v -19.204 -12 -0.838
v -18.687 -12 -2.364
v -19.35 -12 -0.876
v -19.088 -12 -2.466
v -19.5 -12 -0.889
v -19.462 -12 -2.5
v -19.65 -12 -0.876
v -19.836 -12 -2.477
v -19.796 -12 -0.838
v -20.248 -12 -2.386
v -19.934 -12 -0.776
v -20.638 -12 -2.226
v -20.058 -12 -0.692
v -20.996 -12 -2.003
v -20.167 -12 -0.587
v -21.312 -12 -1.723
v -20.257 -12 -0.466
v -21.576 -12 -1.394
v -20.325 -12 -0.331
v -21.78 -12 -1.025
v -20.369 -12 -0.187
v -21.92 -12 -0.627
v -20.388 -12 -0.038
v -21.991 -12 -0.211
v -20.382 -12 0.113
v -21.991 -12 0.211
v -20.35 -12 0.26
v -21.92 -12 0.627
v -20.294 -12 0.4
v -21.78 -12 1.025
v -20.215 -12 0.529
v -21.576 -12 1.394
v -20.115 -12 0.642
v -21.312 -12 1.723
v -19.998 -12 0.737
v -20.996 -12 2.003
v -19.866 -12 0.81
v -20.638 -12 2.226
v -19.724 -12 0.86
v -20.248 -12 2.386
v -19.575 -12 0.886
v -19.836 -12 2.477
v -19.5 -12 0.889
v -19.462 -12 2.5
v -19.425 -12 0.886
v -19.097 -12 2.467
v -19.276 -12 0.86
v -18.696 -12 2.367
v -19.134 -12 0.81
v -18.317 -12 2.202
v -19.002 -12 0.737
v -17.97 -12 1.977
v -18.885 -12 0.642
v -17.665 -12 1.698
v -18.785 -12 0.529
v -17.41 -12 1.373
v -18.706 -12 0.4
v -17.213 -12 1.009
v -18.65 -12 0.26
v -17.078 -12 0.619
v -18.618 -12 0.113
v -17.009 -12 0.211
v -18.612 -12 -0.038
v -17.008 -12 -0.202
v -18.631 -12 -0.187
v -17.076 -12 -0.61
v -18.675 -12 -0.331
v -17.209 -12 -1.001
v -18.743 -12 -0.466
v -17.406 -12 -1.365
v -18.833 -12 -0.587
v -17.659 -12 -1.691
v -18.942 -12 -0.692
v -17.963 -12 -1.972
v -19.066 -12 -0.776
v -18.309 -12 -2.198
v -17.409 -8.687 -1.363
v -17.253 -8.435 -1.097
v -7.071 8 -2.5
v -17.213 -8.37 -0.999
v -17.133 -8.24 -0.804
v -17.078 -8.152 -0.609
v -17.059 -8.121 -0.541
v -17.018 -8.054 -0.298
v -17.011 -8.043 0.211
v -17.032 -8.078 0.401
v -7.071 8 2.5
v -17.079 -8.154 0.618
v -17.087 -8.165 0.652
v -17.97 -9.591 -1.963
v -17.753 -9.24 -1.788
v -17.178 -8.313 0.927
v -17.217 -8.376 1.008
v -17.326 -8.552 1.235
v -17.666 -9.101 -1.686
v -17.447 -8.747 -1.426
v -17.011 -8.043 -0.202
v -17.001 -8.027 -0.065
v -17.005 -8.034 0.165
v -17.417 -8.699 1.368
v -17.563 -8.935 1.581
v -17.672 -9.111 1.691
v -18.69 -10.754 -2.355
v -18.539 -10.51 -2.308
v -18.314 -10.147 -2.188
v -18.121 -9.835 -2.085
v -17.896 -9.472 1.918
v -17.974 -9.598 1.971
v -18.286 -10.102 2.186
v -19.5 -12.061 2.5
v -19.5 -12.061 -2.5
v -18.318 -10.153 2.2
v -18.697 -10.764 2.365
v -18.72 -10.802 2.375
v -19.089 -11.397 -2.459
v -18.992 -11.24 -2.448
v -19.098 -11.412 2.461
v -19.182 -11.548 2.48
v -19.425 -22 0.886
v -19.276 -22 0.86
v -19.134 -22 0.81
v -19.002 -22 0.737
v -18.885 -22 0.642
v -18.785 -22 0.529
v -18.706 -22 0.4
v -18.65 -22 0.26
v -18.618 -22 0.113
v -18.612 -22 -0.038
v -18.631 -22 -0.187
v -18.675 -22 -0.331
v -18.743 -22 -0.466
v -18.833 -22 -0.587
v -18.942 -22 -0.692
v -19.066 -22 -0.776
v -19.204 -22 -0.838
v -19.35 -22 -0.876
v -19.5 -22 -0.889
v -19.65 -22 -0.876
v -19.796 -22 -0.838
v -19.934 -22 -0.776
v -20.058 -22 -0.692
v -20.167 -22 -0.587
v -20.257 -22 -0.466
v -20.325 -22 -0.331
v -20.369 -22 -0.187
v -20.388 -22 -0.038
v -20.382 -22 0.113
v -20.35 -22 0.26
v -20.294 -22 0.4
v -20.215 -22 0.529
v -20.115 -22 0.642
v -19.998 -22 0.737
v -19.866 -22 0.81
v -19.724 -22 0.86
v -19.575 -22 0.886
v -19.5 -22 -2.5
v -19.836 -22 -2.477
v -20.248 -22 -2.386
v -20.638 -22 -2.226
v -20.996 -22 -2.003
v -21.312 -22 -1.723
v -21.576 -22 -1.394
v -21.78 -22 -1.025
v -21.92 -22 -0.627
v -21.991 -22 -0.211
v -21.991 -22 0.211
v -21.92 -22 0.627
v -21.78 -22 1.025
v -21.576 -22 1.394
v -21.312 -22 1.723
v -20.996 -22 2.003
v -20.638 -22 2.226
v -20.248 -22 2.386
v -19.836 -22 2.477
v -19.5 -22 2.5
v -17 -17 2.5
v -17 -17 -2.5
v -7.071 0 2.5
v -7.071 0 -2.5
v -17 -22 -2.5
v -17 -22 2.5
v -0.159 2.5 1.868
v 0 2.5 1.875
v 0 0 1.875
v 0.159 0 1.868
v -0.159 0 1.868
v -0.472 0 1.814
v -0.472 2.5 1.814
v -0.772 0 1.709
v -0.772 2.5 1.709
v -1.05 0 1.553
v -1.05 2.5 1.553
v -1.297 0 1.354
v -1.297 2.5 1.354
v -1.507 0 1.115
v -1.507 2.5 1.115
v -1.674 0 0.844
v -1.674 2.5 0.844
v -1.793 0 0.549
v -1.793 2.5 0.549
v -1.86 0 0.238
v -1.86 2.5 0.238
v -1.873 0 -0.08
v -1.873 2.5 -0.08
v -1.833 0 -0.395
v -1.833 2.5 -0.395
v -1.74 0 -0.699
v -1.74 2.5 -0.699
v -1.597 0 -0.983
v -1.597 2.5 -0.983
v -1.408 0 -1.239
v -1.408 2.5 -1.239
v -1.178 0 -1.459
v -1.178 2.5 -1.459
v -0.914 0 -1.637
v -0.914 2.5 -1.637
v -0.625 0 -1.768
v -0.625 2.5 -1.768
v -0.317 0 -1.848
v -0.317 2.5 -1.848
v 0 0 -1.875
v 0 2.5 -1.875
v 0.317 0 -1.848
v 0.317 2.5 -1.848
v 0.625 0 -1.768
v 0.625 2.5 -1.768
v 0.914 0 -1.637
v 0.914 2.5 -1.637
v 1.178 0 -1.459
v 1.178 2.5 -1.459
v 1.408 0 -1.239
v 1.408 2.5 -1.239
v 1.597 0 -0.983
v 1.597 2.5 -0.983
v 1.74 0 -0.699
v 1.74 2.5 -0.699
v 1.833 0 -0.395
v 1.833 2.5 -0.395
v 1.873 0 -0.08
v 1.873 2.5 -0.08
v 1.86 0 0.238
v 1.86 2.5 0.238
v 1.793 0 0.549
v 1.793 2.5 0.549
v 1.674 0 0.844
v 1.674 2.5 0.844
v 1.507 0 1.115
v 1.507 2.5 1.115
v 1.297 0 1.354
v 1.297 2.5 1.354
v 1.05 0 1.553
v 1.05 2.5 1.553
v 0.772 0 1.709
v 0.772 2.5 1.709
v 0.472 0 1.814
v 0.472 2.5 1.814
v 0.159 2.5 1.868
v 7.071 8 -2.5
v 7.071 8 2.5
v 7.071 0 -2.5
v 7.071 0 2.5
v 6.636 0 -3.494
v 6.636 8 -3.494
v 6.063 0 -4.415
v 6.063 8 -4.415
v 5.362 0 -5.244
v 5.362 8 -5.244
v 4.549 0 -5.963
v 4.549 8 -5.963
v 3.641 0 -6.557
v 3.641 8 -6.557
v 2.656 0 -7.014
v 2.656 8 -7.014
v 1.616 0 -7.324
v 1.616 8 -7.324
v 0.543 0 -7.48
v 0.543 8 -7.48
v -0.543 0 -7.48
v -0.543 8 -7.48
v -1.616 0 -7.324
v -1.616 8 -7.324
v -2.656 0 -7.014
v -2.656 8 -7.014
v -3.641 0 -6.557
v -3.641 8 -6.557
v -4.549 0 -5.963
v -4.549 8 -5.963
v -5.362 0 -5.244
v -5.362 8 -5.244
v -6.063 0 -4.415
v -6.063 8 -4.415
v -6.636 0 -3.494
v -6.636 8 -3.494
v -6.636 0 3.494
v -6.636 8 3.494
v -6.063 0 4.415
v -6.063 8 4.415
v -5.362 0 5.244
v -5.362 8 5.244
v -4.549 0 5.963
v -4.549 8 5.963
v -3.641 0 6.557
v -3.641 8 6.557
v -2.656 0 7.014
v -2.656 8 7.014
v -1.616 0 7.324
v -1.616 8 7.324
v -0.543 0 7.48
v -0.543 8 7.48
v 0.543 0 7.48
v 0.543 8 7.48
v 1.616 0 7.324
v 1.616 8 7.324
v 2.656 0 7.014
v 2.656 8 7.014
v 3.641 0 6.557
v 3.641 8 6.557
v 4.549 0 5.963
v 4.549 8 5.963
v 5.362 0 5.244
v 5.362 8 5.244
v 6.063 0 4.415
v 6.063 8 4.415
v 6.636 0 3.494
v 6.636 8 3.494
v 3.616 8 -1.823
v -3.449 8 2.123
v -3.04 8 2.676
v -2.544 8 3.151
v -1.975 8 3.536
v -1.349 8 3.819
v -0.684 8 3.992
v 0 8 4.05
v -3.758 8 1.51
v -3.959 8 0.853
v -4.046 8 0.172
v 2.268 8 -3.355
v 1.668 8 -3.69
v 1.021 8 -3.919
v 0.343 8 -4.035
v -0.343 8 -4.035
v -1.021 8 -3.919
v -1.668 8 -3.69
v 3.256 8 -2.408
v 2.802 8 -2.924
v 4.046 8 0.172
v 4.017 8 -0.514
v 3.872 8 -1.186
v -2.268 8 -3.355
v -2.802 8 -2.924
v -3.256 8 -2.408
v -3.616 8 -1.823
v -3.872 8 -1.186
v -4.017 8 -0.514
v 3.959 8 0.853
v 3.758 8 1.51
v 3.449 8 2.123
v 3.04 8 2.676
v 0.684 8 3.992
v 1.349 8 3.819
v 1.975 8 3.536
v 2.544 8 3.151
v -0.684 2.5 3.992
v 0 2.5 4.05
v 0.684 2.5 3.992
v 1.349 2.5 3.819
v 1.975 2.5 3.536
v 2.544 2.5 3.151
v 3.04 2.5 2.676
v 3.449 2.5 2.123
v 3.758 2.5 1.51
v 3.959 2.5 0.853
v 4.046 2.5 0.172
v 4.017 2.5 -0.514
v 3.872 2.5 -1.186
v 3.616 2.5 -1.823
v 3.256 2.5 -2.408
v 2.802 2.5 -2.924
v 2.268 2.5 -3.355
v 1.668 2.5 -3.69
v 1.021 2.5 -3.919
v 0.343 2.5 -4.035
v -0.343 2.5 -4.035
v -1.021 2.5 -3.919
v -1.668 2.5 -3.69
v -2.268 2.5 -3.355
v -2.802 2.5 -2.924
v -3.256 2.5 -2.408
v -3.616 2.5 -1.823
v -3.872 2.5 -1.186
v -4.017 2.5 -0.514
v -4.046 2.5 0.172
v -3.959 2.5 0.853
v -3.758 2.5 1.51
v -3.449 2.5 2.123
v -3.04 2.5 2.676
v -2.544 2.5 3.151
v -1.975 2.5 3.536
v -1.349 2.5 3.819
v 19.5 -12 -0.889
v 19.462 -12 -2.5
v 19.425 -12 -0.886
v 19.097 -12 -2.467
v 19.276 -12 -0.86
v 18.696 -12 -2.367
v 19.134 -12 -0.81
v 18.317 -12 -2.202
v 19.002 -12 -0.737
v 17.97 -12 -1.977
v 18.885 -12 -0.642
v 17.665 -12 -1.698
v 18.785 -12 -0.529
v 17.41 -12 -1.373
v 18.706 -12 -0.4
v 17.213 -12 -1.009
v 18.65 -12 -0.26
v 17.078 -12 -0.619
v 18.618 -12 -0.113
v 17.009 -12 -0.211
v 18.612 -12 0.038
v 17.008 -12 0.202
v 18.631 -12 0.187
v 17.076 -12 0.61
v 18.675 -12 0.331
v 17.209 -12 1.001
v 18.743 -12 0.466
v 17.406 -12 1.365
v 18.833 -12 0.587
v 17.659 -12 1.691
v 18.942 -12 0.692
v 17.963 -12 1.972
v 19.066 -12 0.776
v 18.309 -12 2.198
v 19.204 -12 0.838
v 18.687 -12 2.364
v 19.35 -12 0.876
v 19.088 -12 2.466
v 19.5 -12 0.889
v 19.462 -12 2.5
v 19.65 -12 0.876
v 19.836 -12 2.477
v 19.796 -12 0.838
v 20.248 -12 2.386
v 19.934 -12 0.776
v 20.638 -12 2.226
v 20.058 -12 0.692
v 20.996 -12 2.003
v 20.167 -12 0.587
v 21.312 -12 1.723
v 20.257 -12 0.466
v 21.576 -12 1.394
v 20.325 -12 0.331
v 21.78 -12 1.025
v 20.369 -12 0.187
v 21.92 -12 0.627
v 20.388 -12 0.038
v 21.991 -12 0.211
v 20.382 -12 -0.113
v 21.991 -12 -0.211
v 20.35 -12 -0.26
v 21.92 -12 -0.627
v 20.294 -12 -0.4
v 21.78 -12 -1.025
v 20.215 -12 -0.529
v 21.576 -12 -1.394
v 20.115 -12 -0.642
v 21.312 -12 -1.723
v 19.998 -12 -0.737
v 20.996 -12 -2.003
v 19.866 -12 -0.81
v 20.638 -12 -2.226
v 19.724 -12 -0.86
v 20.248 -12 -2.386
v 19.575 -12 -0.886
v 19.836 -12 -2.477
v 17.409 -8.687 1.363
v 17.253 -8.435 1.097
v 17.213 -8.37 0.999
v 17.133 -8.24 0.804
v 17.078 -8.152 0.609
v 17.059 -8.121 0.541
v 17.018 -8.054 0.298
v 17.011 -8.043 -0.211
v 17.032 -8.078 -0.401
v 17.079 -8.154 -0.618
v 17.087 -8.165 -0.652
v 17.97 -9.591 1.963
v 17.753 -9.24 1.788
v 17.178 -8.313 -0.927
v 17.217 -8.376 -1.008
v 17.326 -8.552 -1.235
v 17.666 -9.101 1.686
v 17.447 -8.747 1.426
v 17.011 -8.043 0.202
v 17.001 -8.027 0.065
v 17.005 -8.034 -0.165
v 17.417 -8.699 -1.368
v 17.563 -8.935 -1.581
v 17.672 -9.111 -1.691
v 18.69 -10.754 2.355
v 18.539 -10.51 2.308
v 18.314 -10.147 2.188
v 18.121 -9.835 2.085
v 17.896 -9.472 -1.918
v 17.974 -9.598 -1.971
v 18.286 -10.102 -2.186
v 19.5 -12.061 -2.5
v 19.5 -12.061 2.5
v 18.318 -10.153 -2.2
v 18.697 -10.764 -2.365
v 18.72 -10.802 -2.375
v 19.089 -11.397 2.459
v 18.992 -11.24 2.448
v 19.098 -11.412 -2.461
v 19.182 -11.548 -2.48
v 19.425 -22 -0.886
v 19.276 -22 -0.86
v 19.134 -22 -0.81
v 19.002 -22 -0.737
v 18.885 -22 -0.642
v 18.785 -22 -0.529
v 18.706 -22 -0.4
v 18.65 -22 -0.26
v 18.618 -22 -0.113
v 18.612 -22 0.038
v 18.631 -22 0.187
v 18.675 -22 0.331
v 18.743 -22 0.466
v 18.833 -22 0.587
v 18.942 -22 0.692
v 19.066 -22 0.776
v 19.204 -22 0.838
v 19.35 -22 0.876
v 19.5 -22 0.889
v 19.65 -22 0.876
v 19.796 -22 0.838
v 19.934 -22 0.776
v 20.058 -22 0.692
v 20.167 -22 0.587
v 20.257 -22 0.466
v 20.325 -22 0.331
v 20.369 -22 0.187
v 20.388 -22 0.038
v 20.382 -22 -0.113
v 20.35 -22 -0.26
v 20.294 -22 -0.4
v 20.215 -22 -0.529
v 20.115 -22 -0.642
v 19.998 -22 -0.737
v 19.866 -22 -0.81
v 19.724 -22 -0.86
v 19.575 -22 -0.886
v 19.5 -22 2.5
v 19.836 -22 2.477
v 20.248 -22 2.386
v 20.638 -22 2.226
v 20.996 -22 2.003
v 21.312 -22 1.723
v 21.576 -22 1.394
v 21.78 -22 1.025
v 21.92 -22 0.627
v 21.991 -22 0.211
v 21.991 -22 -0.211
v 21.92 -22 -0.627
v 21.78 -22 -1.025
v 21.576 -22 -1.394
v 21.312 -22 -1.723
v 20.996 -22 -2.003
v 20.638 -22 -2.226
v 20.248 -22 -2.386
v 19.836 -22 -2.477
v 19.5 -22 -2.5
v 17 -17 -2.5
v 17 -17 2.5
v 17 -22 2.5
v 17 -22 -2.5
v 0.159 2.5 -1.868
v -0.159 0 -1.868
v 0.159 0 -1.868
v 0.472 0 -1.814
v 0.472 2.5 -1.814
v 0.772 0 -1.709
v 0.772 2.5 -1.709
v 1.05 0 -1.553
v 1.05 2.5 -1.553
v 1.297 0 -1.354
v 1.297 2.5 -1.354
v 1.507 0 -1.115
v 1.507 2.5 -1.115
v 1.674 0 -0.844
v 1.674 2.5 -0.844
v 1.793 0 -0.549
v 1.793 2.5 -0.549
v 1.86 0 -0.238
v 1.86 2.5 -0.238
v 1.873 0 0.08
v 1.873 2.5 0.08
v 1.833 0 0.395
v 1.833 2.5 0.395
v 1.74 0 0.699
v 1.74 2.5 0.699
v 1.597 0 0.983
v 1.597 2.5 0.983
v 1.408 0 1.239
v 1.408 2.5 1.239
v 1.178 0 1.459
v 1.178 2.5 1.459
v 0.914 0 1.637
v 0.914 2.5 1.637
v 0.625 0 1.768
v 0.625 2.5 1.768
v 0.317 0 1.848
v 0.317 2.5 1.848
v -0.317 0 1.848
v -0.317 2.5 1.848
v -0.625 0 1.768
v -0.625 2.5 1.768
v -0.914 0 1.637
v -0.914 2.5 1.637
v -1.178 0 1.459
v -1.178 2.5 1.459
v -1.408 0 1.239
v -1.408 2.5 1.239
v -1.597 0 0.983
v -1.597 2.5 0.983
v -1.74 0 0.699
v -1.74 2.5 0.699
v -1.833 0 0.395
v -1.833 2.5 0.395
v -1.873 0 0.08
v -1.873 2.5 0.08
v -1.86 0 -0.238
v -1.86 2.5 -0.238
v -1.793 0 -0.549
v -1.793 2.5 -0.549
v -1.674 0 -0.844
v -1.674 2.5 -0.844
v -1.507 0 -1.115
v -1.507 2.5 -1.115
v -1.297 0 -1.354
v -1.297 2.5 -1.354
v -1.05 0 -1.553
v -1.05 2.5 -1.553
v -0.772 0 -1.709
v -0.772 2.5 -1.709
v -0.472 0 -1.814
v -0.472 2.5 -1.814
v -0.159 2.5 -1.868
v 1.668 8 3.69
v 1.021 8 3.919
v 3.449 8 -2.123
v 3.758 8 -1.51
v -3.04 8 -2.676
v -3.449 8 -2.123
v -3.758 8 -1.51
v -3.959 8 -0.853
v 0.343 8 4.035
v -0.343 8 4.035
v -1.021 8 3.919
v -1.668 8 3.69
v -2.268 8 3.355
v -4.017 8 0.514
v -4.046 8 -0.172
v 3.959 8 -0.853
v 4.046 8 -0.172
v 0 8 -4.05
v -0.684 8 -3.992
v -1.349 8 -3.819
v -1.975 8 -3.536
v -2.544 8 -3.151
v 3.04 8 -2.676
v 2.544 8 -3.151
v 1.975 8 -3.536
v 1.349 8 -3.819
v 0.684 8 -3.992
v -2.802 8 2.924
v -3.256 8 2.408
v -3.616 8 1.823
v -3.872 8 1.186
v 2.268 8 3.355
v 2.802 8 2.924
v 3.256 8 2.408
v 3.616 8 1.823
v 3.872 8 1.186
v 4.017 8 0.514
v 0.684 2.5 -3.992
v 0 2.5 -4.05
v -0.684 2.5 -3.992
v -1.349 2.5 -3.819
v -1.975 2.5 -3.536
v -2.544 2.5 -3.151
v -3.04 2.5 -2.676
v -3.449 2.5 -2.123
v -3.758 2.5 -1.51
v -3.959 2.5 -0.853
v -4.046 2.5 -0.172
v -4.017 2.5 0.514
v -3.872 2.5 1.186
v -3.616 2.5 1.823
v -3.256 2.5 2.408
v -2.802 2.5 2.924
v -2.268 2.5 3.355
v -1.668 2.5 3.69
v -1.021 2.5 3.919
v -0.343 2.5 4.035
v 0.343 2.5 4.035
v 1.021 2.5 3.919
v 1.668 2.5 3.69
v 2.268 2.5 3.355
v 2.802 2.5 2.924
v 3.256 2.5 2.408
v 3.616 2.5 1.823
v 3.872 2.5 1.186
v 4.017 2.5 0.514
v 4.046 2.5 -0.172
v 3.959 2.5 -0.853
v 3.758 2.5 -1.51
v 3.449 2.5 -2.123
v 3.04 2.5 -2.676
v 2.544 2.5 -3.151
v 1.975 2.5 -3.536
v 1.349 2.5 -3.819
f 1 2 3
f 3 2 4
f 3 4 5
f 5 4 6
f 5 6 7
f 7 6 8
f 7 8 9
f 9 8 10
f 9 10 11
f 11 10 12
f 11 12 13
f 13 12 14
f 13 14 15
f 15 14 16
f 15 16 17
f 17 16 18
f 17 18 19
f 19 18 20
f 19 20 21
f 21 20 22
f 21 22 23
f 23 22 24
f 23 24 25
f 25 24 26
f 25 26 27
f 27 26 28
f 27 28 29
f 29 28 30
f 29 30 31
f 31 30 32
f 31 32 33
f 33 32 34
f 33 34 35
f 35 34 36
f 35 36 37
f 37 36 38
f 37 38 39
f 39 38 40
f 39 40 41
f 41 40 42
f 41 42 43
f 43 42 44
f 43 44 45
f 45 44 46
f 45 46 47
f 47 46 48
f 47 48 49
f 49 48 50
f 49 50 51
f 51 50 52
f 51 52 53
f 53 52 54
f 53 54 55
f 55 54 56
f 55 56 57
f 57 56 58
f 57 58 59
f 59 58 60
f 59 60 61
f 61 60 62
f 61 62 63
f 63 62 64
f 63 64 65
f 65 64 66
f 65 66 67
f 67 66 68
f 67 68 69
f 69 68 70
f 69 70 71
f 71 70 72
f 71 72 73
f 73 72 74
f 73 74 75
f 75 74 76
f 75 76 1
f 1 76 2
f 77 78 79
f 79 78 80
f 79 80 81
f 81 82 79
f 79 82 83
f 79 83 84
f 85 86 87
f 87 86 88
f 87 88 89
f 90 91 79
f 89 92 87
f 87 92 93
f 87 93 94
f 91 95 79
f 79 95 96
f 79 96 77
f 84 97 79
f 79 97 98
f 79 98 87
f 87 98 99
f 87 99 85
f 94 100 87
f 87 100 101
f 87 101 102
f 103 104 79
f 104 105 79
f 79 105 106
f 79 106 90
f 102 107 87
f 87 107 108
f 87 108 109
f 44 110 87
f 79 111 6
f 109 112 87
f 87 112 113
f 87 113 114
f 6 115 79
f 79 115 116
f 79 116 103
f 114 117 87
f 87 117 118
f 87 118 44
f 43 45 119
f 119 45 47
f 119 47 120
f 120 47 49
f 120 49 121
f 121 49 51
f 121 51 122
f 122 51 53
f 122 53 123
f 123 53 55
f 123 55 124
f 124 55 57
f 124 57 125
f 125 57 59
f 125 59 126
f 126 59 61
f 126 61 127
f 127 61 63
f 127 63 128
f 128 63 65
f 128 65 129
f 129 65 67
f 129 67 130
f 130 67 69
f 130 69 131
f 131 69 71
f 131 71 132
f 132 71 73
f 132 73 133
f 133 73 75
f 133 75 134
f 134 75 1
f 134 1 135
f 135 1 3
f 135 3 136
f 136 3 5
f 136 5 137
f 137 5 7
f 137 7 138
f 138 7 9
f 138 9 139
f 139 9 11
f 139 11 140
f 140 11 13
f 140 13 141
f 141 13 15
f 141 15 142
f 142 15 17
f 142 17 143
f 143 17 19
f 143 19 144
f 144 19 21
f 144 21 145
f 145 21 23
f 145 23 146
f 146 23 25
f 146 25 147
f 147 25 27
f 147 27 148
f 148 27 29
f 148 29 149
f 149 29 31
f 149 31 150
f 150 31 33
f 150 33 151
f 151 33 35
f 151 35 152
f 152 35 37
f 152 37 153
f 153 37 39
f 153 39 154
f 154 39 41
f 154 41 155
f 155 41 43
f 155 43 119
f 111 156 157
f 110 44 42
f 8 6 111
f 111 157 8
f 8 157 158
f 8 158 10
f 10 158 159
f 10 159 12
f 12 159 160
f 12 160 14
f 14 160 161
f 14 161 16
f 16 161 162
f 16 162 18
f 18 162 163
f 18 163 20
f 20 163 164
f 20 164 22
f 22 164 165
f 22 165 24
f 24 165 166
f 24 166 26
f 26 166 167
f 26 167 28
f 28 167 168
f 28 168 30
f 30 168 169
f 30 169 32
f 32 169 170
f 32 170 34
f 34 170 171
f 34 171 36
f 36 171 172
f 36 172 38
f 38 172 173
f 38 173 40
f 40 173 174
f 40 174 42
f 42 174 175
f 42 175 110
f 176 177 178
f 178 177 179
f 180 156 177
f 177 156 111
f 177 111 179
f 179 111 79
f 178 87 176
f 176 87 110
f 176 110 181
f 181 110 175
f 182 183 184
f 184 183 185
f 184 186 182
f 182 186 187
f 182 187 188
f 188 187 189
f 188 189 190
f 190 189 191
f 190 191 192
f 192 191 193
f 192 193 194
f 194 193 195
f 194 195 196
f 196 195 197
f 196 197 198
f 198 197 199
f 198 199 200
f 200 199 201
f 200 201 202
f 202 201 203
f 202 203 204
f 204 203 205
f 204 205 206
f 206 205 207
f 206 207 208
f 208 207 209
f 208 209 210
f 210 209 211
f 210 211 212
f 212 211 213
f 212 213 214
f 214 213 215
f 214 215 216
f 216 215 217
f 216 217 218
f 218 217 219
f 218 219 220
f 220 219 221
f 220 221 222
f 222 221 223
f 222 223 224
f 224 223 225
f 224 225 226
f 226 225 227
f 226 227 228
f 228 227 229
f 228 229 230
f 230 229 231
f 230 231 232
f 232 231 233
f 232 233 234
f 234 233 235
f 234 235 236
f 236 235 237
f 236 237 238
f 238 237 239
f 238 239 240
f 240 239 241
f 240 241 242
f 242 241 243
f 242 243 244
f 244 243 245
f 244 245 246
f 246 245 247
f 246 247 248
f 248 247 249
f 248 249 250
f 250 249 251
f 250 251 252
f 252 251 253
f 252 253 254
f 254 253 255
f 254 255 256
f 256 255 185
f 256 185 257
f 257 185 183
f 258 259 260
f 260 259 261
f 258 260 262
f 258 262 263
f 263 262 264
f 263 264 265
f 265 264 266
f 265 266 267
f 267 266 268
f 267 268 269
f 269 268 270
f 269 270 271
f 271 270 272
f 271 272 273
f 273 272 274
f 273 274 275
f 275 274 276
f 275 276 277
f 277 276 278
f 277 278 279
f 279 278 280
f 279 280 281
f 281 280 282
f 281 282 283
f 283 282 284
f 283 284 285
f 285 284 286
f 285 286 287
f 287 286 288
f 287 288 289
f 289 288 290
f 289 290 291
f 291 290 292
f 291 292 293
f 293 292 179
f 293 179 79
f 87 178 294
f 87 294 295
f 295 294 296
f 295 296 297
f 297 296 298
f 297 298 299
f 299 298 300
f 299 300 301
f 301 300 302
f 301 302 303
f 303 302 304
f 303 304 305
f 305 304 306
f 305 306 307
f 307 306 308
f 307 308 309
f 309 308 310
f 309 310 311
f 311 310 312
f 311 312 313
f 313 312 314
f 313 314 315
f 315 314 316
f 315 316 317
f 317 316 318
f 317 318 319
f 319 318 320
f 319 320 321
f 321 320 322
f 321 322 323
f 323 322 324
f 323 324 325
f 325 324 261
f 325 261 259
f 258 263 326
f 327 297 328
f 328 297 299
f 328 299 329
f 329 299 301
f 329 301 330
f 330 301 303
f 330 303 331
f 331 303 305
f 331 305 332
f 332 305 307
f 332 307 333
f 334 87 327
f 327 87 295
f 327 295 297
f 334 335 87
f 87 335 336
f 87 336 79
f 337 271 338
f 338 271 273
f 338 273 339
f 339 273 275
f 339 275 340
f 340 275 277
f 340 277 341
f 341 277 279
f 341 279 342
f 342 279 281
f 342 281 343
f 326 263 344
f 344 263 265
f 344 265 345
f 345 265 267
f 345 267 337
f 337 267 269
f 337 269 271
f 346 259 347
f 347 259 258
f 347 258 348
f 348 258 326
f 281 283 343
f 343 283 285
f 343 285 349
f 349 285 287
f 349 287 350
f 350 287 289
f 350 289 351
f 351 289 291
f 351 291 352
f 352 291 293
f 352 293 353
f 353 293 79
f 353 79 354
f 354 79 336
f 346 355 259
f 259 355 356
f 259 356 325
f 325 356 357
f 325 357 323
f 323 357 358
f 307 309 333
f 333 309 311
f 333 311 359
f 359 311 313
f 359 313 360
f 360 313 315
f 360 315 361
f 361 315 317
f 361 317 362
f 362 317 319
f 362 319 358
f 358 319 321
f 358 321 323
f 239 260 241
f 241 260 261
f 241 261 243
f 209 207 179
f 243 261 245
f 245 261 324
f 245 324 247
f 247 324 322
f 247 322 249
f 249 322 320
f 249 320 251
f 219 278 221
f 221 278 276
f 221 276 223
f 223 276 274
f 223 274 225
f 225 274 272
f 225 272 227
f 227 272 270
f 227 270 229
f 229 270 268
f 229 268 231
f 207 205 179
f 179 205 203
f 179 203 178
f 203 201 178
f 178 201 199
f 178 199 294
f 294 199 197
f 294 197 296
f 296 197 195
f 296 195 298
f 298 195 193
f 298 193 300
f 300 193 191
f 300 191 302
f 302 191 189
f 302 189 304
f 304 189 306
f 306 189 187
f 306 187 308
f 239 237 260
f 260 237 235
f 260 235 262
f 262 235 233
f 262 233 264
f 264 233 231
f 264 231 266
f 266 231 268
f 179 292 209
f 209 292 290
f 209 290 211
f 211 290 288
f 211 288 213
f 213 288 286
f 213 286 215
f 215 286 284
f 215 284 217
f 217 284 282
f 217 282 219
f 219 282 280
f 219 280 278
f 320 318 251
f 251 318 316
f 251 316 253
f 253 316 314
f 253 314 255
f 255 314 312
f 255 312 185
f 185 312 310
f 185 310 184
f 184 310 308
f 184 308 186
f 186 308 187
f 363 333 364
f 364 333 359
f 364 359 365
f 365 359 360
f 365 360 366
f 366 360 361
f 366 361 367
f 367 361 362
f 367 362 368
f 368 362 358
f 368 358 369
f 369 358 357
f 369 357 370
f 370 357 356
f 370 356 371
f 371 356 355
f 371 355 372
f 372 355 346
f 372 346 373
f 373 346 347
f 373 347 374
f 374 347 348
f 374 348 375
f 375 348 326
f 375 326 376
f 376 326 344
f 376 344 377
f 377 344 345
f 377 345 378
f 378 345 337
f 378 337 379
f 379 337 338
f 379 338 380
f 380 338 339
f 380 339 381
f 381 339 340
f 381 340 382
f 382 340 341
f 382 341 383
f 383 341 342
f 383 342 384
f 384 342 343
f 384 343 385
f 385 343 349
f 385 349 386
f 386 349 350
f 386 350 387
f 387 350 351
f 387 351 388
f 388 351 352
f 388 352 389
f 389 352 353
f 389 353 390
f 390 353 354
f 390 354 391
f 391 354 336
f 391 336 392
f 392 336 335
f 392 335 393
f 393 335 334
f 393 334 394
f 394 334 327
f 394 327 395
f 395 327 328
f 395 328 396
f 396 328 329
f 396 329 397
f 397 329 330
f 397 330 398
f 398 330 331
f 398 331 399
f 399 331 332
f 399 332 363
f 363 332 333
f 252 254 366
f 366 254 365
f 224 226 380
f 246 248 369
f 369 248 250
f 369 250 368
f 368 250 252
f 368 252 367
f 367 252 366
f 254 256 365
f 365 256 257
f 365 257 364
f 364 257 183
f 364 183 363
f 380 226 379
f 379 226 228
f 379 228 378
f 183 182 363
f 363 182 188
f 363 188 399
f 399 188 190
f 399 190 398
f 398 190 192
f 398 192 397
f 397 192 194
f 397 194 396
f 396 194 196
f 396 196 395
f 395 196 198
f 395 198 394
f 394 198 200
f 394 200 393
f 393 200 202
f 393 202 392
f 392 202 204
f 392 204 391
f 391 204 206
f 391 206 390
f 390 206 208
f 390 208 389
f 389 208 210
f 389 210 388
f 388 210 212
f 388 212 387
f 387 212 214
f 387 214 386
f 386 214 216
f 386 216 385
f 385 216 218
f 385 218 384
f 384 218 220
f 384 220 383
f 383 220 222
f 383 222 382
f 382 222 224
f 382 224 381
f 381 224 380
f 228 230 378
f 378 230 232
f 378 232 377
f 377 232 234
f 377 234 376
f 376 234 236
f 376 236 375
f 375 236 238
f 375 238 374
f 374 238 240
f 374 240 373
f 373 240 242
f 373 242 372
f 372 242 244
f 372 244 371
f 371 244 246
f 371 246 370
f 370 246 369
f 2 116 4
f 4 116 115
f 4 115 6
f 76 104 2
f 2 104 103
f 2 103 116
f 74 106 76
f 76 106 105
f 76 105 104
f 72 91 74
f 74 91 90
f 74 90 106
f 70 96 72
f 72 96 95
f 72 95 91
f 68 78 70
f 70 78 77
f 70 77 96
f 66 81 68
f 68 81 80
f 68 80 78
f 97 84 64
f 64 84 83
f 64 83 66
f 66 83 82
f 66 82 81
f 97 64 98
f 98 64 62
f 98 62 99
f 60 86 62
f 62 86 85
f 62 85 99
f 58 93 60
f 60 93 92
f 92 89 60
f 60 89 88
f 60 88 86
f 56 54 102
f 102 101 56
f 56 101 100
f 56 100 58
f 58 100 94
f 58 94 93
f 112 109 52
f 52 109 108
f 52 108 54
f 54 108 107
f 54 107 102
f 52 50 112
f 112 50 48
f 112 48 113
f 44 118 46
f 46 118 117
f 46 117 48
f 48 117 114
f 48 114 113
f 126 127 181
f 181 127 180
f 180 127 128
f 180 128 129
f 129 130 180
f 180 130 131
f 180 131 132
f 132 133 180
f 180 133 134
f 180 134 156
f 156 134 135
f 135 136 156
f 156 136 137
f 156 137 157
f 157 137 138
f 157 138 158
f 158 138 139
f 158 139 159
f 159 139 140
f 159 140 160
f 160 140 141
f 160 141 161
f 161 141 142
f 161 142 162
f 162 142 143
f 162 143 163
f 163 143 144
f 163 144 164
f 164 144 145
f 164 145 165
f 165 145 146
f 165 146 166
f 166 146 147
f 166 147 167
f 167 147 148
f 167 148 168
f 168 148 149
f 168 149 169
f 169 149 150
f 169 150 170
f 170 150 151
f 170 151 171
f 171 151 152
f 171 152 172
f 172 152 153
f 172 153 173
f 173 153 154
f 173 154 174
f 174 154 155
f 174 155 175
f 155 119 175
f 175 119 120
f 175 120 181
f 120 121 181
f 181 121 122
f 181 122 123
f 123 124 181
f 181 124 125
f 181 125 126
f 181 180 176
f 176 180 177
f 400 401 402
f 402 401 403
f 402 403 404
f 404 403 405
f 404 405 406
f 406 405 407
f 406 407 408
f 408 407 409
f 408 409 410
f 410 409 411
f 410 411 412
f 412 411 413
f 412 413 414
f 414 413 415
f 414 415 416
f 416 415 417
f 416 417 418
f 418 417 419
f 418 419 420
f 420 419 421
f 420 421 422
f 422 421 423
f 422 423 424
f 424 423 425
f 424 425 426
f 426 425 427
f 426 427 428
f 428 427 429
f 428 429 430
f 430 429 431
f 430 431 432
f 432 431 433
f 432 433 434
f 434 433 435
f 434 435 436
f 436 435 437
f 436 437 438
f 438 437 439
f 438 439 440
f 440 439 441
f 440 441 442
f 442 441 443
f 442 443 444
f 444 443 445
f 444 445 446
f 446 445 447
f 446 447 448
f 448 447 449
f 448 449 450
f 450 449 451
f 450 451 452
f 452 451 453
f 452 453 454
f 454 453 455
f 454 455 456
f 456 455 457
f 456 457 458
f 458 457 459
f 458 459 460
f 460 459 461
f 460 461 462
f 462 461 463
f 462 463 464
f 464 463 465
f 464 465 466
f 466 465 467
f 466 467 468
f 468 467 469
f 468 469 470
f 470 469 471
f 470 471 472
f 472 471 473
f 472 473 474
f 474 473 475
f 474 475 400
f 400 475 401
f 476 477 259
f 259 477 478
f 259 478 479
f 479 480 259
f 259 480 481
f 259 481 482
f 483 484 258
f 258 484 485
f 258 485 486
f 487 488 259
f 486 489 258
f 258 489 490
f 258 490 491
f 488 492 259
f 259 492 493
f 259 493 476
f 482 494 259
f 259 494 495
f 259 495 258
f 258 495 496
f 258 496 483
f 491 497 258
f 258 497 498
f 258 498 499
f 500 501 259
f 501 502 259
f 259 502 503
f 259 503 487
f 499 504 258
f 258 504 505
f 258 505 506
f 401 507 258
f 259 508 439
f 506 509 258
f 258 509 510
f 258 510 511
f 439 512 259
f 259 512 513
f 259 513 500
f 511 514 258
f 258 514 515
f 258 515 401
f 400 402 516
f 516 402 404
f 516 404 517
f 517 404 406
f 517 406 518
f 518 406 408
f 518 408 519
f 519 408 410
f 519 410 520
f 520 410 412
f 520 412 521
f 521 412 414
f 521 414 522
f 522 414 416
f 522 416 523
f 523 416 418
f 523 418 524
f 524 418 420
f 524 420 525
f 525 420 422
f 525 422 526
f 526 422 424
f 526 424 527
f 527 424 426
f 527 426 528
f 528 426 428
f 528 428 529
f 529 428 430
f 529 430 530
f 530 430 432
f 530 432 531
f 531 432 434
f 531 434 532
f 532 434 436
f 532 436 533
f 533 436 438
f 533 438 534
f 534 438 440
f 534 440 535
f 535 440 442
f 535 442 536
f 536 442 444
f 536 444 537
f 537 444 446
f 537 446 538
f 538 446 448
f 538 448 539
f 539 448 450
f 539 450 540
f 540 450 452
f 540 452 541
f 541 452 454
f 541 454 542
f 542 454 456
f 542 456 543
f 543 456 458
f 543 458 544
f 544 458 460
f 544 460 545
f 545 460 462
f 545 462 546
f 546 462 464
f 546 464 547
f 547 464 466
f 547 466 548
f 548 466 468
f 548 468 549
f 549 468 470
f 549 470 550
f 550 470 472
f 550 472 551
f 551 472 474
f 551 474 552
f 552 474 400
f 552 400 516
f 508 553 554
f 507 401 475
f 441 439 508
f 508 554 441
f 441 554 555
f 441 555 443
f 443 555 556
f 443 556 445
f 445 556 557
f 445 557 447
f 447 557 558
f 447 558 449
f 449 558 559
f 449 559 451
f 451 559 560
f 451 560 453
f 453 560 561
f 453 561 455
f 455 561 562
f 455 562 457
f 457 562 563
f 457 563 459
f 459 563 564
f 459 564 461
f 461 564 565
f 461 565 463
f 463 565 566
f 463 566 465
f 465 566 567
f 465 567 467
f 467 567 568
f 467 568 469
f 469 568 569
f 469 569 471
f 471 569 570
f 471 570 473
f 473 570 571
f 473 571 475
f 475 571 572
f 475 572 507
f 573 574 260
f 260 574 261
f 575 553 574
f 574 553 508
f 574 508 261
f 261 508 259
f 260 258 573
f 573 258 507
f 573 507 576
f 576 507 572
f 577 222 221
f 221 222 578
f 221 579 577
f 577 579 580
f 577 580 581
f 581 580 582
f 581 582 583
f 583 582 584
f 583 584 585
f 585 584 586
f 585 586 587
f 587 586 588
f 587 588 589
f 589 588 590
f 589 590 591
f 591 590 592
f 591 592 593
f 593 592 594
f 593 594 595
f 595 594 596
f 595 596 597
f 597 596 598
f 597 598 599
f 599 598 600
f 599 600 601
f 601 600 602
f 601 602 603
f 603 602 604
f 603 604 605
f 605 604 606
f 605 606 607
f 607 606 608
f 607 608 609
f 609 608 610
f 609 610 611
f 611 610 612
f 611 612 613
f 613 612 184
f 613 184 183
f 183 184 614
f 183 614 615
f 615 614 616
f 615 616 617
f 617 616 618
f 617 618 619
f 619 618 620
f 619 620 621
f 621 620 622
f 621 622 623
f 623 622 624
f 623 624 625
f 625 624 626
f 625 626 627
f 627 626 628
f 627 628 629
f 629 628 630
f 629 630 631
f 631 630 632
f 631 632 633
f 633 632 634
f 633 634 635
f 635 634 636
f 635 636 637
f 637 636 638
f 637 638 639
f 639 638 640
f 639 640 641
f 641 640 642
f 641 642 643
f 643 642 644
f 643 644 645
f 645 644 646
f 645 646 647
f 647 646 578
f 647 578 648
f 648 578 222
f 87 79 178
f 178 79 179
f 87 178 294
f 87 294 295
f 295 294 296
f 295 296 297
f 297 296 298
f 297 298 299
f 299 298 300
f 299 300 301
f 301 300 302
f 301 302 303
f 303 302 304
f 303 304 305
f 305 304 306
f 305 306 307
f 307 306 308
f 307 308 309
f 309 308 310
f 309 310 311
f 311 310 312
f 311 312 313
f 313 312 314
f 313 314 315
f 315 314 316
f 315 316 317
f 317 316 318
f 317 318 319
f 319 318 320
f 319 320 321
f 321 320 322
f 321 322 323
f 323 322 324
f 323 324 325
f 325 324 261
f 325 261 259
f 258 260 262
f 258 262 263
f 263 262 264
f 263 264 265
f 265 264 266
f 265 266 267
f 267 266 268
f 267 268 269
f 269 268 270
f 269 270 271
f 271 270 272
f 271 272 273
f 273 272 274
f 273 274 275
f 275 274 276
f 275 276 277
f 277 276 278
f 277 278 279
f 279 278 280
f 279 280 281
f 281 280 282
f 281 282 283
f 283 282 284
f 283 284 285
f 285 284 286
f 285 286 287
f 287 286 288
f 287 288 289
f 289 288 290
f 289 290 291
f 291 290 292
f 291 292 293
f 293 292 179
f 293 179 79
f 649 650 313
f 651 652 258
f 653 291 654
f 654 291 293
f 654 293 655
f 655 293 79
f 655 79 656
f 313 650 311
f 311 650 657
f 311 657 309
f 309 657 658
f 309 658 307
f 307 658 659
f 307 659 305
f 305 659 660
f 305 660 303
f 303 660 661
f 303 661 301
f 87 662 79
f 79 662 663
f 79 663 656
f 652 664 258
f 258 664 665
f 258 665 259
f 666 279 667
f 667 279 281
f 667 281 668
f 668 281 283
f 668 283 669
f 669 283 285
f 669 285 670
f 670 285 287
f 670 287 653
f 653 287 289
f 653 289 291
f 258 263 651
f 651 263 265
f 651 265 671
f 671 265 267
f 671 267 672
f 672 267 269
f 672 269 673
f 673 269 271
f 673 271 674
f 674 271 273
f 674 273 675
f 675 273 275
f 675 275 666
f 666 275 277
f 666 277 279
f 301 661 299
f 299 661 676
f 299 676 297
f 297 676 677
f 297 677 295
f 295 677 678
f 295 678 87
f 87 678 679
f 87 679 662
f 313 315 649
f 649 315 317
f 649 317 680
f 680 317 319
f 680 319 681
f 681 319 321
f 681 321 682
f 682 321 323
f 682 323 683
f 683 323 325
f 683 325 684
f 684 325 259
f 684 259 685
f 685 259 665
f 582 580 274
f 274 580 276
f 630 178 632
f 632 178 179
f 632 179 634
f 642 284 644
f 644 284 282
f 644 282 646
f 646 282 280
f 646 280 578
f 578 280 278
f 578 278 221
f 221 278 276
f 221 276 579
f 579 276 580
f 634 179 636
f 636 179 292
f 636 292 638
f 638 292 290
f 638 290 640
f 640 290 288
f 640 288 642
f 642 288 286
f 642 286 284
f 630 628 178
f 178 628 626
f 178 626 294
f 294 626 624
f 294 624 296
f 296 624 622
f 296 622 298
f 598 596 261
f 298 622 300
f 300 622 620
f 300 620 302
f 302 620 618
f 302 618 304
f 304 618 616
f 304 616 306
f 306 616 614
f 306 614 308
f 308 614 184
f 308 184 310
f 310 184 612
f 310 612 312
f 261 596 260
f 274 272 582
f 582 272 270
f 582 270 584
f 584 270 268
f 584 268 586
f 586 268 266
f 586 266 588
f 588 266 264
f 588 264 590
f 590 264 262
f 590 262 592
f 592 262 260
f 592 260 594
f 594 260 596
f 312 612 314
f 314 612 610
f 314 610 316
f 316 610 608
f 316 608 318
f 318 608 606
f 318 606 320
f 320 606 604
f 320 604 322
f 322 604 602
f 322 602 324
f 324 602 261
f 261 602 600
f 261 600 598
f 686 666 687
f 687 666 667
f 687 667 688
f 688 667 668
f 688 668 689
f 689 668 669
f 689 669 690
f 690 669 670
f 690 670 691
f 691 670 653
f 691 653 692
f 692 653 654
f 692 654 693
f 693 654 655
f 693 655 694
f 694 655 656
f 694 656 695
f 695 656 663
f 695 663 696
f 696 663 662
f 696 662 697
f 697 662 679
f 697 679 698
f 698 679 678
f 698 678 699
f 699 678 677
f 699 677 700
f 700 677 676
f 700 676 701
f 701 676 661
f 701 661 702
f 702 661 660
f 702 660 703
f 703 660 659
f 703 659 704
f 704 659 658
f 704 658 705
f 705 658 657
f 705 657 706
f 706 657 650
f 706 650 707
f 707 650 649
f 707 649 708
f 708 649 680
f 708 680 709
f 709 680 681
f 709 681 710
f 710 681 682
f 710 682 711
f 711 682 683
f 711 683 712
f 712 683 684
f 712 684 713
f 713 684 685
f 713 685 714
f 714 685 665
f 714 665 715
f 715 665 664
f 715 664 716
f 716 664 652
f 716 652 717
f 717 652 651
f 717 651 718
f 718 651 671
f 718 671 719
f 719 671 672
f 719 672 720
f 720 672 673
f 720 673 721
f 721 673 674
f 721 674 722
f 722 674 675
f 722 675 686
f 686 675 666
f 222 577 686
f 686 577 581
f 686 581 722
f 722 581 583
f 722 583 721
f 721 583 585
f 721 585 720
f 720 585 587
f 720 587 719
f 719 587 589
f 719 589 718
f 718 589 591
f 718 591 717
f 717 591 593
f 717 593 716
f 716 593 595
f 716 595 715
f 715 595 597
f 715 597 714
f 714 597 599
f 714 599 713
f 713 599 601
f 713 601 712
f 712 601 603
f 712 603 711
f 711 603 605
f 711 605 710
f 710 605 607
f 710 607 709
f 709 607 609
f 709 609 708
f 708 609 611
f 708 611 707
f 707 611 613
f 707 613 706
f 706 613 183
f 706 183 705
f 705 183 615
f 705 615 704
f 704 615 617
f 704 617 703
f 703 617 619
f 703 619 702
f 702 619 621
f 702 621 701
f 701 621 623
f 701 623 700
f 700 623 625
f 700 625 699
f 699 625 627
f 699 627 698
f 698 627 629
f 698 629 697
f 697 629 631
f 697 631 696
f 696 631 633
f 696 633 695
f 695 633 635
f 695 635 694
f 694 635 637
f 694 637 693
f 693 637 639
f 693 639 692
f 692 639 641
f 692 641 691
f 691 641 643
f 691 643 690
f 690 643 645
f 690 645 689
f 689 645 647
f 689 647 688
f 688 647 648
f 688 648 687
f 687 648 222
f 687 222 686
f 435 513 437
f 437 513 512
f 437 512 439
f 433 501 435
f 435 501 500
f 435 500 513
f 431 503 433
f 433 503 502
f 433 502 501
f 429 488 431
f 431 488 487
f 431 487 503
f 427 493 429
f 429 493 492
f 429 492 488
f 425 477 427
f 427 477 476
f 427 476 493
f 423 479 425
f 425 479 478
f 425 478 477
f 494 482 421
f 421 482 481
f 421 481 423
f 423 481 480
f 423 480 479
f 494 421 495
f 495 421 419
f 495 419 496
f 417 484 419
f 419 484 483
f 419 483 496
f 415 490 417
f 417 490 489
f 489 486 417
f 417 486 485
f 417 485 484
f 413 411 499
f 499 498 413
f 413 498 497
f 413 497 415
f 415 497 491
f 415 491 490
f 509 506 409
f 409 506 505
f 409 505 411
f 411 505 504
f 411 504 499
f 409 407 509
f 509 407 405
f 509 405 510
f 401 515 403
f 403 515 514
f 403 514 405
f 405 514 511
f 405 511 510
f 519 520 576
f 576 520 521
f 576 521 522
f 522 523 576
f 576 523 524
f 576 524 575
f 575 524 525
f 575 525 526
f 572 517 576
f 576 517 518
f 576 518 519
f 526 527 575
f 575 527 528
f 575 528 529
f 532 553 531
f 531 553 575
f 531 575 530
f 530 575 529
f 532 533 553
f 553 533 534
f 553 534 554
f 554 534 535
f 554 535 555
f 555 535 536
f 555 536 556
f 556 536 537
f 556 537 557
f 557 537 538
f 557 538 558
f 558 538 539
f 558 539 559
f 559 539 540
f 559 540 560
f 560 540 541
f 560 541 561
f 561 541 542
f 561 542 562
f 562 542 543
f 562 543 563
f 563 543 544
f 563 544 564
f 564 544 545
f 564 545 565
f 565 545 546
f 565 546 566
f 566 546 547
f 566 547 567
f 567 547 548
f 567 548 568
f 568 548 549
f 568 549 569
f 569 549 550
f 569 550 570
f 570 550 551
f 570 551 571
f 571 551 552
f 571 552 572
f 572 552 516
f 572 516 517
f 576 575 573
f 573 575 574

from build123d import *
from build123d.topology import SkipClean

# Parameters (mm, degrees)
SKETCH1_R                = 1.875
BOSS_EXTRUDE1_DEPTH      = 8
BOSS_EXTRUDE2_START      = -17
SKETCH1_3_R              = 2.5
SKETCH1_3_R_2            = 0.889
BOSS_EXTRUDE2_DEPTH      = 5
SKETCH4_R                = 4.05
CUT_EXTRUDE1_DEPTH       = 5.5
BOSS_EXTRUDE3_DEPTH      = 2.5
BOSS_EXTRUDE3_DEPTH_BACK = 2.5
SKETCH5_R                = 2.5
CUT_EXTRUDE2_DEPTH       = 31.663496213
CUT_EXTRUDE3_DEPTH       = 31.663496213
BOSS_EXTRUDE4_START      = 5
SKETCH8_R                = 0.889
BOSS_EXTRUDE4_DEPTH      = 5
CIRPATTERN5_COUNT        = 2


with BuildPart() as part:
    # Sketch1 → Boss-Extrude1 (new body)
    with BuildSketch(Plane(origin=(0, 0, 0), x_dir=(1, 0, 0), z_dir=(0, 1, 0))):
        with BuildLine():
            Line((7.071067812, -2.5), (7.071067812, 2.5))
            ThreePointArc((7.071067812, 2.5), (0, 7.5), (-7.071067812, 2.5))
            Line((-7.071067812, 2.5), (-7.071067812, -2.5))
            ThreePointArc((-7.071067812, -2.5), (0, -7.5), (7.071067812, -2.5))
        make_face()
        Circle(SKETCH1_R, mode=Mode.SUBTRACT)
    extrude(amount=BOSS_EXTRUDE1_DEPTH)

    # Sketch4 → Cut-Extrude1 (cut)
    with BuildSketch(Plane(origin=(0, 8, 0), x_dir=(1, 0, 0), z_dir=(0, 1, 0))):
        Circle(SKETCH4_R)
    extrude(amount=-CUT_EXTRUDE1_DEPTH, mode=Mode.SUBTRACT)



with BuildPart() as body_2:
    # Sketch1<3> → Boss-Extrude2 (new body)
    with BuildSketch(Plane(origin=(0, 0, 0), x_dir=(1, 0, 0), z_dir=(0, 1, 0)).offset(BOSS_EXTRUDE2_START)):
        with Locations((-19.5, 0)):
            Circle(SKETCH1_3_R)
        with Locations((-19.5, 0)):
            Circle(SKETCH1_3_R_2, mode=Mode.SUBTRACT)
    extrude(amount=BOSS_EXTRUDE2_DEPTH)


with BuildPart() as part_1:
    add(part.part)

    add(body_2.part)  # Boss-Extrude3 merges body 2
    # Sketch3 → Boss-Extrude3 (add, two sides: drawn at the far end of the back side and taken through both)
    with BuildSketch(Plane.XY.offset(-BOSS_EXTRUDE3_DEPTH_BACK)):
        Polygon((-7.071067812, 8), (-19.5, -12.060762386), (-19.5, -17), (-17, -17), (-7.071067812, 0), align=None)
    extrude(amount=BOSS_EXTRUDE3_DEPTH + BOSS_EXTRUDE3_DEPTH_BACK)

    # Sketch5 → Cut-Extrude2 (cut, through all)
    with BuildSketch(Plane(origin=(0, -12, 0), x_dir=(1, 0, 0), z_dir=(0, 1, 0))):
        with Locations((-19.5, 0)):
            Circle(SKETCH5_R)
    extrude(amount=CUT_EXTRUDE2_DEPTH, mode=Mode.SUBTRACT)

    # Sketch5<3> → Cut-Extrude3 (cut, through all)
    with BuildSketch(Plane(origin=(0, -12, 0), x_dir=(1, 0, 0), z_dir=(0, 1, 0))):
        with BuildLine():
            ThreePointArc((-19.462353795, -0.888202546), (-18.858210129, -0.615164012), (-18.611, 0))
            ThreePointArc((-18.611, 0), (-18.858210129, 0.615164012), (-19.462353795, 0.888202546))
            ThreePointArc((-19.462353795, 0.888202546), (-20.389, 0), (-19.462353795, -0.888202546))
        make_face()
    extrude(amount=-CUT_EXTRUDE3_DEPTH, mode=Mode.SUBTRACT)

    # Sketch8 → Boss-Extrude4 (add)
    with SkipClean():  # the faces are left unmerged after this step: merging them gives an invalid solid
        with BuildSketch(Plane.XZ.offset(17).offset(BOSS_EXTRUDE4_START)):
            with BuildLine():
                Line((-19.5, -2.5), (-17, -2.5))
                Line((-17, -2.5), (-17, 2.5))
                Line((-17, 2.5), (-19.5, 2.5))
                ThreePointArc((-19.5, 2.5), (-22, 0), (-19.5, -2.5))
            make_face()
            with Locations((-19.5, 0)):
                Circle(SKETCH8_R, mode=Mode.SUBTRACT)
        extrude(amount=-BOSS_EXTRUDE4_DEPTH)


with BuildPart() as cirpattern5_1:
    # CirPattern5: pattern copy
    add(part_1.part.rotate(Axis((0, 8, 0), (0, 1, 0)), 1 * 360 / CIRPATTERN5_COUNT))


solid = Compound([part_1.part, cirpattern5_1.part])
